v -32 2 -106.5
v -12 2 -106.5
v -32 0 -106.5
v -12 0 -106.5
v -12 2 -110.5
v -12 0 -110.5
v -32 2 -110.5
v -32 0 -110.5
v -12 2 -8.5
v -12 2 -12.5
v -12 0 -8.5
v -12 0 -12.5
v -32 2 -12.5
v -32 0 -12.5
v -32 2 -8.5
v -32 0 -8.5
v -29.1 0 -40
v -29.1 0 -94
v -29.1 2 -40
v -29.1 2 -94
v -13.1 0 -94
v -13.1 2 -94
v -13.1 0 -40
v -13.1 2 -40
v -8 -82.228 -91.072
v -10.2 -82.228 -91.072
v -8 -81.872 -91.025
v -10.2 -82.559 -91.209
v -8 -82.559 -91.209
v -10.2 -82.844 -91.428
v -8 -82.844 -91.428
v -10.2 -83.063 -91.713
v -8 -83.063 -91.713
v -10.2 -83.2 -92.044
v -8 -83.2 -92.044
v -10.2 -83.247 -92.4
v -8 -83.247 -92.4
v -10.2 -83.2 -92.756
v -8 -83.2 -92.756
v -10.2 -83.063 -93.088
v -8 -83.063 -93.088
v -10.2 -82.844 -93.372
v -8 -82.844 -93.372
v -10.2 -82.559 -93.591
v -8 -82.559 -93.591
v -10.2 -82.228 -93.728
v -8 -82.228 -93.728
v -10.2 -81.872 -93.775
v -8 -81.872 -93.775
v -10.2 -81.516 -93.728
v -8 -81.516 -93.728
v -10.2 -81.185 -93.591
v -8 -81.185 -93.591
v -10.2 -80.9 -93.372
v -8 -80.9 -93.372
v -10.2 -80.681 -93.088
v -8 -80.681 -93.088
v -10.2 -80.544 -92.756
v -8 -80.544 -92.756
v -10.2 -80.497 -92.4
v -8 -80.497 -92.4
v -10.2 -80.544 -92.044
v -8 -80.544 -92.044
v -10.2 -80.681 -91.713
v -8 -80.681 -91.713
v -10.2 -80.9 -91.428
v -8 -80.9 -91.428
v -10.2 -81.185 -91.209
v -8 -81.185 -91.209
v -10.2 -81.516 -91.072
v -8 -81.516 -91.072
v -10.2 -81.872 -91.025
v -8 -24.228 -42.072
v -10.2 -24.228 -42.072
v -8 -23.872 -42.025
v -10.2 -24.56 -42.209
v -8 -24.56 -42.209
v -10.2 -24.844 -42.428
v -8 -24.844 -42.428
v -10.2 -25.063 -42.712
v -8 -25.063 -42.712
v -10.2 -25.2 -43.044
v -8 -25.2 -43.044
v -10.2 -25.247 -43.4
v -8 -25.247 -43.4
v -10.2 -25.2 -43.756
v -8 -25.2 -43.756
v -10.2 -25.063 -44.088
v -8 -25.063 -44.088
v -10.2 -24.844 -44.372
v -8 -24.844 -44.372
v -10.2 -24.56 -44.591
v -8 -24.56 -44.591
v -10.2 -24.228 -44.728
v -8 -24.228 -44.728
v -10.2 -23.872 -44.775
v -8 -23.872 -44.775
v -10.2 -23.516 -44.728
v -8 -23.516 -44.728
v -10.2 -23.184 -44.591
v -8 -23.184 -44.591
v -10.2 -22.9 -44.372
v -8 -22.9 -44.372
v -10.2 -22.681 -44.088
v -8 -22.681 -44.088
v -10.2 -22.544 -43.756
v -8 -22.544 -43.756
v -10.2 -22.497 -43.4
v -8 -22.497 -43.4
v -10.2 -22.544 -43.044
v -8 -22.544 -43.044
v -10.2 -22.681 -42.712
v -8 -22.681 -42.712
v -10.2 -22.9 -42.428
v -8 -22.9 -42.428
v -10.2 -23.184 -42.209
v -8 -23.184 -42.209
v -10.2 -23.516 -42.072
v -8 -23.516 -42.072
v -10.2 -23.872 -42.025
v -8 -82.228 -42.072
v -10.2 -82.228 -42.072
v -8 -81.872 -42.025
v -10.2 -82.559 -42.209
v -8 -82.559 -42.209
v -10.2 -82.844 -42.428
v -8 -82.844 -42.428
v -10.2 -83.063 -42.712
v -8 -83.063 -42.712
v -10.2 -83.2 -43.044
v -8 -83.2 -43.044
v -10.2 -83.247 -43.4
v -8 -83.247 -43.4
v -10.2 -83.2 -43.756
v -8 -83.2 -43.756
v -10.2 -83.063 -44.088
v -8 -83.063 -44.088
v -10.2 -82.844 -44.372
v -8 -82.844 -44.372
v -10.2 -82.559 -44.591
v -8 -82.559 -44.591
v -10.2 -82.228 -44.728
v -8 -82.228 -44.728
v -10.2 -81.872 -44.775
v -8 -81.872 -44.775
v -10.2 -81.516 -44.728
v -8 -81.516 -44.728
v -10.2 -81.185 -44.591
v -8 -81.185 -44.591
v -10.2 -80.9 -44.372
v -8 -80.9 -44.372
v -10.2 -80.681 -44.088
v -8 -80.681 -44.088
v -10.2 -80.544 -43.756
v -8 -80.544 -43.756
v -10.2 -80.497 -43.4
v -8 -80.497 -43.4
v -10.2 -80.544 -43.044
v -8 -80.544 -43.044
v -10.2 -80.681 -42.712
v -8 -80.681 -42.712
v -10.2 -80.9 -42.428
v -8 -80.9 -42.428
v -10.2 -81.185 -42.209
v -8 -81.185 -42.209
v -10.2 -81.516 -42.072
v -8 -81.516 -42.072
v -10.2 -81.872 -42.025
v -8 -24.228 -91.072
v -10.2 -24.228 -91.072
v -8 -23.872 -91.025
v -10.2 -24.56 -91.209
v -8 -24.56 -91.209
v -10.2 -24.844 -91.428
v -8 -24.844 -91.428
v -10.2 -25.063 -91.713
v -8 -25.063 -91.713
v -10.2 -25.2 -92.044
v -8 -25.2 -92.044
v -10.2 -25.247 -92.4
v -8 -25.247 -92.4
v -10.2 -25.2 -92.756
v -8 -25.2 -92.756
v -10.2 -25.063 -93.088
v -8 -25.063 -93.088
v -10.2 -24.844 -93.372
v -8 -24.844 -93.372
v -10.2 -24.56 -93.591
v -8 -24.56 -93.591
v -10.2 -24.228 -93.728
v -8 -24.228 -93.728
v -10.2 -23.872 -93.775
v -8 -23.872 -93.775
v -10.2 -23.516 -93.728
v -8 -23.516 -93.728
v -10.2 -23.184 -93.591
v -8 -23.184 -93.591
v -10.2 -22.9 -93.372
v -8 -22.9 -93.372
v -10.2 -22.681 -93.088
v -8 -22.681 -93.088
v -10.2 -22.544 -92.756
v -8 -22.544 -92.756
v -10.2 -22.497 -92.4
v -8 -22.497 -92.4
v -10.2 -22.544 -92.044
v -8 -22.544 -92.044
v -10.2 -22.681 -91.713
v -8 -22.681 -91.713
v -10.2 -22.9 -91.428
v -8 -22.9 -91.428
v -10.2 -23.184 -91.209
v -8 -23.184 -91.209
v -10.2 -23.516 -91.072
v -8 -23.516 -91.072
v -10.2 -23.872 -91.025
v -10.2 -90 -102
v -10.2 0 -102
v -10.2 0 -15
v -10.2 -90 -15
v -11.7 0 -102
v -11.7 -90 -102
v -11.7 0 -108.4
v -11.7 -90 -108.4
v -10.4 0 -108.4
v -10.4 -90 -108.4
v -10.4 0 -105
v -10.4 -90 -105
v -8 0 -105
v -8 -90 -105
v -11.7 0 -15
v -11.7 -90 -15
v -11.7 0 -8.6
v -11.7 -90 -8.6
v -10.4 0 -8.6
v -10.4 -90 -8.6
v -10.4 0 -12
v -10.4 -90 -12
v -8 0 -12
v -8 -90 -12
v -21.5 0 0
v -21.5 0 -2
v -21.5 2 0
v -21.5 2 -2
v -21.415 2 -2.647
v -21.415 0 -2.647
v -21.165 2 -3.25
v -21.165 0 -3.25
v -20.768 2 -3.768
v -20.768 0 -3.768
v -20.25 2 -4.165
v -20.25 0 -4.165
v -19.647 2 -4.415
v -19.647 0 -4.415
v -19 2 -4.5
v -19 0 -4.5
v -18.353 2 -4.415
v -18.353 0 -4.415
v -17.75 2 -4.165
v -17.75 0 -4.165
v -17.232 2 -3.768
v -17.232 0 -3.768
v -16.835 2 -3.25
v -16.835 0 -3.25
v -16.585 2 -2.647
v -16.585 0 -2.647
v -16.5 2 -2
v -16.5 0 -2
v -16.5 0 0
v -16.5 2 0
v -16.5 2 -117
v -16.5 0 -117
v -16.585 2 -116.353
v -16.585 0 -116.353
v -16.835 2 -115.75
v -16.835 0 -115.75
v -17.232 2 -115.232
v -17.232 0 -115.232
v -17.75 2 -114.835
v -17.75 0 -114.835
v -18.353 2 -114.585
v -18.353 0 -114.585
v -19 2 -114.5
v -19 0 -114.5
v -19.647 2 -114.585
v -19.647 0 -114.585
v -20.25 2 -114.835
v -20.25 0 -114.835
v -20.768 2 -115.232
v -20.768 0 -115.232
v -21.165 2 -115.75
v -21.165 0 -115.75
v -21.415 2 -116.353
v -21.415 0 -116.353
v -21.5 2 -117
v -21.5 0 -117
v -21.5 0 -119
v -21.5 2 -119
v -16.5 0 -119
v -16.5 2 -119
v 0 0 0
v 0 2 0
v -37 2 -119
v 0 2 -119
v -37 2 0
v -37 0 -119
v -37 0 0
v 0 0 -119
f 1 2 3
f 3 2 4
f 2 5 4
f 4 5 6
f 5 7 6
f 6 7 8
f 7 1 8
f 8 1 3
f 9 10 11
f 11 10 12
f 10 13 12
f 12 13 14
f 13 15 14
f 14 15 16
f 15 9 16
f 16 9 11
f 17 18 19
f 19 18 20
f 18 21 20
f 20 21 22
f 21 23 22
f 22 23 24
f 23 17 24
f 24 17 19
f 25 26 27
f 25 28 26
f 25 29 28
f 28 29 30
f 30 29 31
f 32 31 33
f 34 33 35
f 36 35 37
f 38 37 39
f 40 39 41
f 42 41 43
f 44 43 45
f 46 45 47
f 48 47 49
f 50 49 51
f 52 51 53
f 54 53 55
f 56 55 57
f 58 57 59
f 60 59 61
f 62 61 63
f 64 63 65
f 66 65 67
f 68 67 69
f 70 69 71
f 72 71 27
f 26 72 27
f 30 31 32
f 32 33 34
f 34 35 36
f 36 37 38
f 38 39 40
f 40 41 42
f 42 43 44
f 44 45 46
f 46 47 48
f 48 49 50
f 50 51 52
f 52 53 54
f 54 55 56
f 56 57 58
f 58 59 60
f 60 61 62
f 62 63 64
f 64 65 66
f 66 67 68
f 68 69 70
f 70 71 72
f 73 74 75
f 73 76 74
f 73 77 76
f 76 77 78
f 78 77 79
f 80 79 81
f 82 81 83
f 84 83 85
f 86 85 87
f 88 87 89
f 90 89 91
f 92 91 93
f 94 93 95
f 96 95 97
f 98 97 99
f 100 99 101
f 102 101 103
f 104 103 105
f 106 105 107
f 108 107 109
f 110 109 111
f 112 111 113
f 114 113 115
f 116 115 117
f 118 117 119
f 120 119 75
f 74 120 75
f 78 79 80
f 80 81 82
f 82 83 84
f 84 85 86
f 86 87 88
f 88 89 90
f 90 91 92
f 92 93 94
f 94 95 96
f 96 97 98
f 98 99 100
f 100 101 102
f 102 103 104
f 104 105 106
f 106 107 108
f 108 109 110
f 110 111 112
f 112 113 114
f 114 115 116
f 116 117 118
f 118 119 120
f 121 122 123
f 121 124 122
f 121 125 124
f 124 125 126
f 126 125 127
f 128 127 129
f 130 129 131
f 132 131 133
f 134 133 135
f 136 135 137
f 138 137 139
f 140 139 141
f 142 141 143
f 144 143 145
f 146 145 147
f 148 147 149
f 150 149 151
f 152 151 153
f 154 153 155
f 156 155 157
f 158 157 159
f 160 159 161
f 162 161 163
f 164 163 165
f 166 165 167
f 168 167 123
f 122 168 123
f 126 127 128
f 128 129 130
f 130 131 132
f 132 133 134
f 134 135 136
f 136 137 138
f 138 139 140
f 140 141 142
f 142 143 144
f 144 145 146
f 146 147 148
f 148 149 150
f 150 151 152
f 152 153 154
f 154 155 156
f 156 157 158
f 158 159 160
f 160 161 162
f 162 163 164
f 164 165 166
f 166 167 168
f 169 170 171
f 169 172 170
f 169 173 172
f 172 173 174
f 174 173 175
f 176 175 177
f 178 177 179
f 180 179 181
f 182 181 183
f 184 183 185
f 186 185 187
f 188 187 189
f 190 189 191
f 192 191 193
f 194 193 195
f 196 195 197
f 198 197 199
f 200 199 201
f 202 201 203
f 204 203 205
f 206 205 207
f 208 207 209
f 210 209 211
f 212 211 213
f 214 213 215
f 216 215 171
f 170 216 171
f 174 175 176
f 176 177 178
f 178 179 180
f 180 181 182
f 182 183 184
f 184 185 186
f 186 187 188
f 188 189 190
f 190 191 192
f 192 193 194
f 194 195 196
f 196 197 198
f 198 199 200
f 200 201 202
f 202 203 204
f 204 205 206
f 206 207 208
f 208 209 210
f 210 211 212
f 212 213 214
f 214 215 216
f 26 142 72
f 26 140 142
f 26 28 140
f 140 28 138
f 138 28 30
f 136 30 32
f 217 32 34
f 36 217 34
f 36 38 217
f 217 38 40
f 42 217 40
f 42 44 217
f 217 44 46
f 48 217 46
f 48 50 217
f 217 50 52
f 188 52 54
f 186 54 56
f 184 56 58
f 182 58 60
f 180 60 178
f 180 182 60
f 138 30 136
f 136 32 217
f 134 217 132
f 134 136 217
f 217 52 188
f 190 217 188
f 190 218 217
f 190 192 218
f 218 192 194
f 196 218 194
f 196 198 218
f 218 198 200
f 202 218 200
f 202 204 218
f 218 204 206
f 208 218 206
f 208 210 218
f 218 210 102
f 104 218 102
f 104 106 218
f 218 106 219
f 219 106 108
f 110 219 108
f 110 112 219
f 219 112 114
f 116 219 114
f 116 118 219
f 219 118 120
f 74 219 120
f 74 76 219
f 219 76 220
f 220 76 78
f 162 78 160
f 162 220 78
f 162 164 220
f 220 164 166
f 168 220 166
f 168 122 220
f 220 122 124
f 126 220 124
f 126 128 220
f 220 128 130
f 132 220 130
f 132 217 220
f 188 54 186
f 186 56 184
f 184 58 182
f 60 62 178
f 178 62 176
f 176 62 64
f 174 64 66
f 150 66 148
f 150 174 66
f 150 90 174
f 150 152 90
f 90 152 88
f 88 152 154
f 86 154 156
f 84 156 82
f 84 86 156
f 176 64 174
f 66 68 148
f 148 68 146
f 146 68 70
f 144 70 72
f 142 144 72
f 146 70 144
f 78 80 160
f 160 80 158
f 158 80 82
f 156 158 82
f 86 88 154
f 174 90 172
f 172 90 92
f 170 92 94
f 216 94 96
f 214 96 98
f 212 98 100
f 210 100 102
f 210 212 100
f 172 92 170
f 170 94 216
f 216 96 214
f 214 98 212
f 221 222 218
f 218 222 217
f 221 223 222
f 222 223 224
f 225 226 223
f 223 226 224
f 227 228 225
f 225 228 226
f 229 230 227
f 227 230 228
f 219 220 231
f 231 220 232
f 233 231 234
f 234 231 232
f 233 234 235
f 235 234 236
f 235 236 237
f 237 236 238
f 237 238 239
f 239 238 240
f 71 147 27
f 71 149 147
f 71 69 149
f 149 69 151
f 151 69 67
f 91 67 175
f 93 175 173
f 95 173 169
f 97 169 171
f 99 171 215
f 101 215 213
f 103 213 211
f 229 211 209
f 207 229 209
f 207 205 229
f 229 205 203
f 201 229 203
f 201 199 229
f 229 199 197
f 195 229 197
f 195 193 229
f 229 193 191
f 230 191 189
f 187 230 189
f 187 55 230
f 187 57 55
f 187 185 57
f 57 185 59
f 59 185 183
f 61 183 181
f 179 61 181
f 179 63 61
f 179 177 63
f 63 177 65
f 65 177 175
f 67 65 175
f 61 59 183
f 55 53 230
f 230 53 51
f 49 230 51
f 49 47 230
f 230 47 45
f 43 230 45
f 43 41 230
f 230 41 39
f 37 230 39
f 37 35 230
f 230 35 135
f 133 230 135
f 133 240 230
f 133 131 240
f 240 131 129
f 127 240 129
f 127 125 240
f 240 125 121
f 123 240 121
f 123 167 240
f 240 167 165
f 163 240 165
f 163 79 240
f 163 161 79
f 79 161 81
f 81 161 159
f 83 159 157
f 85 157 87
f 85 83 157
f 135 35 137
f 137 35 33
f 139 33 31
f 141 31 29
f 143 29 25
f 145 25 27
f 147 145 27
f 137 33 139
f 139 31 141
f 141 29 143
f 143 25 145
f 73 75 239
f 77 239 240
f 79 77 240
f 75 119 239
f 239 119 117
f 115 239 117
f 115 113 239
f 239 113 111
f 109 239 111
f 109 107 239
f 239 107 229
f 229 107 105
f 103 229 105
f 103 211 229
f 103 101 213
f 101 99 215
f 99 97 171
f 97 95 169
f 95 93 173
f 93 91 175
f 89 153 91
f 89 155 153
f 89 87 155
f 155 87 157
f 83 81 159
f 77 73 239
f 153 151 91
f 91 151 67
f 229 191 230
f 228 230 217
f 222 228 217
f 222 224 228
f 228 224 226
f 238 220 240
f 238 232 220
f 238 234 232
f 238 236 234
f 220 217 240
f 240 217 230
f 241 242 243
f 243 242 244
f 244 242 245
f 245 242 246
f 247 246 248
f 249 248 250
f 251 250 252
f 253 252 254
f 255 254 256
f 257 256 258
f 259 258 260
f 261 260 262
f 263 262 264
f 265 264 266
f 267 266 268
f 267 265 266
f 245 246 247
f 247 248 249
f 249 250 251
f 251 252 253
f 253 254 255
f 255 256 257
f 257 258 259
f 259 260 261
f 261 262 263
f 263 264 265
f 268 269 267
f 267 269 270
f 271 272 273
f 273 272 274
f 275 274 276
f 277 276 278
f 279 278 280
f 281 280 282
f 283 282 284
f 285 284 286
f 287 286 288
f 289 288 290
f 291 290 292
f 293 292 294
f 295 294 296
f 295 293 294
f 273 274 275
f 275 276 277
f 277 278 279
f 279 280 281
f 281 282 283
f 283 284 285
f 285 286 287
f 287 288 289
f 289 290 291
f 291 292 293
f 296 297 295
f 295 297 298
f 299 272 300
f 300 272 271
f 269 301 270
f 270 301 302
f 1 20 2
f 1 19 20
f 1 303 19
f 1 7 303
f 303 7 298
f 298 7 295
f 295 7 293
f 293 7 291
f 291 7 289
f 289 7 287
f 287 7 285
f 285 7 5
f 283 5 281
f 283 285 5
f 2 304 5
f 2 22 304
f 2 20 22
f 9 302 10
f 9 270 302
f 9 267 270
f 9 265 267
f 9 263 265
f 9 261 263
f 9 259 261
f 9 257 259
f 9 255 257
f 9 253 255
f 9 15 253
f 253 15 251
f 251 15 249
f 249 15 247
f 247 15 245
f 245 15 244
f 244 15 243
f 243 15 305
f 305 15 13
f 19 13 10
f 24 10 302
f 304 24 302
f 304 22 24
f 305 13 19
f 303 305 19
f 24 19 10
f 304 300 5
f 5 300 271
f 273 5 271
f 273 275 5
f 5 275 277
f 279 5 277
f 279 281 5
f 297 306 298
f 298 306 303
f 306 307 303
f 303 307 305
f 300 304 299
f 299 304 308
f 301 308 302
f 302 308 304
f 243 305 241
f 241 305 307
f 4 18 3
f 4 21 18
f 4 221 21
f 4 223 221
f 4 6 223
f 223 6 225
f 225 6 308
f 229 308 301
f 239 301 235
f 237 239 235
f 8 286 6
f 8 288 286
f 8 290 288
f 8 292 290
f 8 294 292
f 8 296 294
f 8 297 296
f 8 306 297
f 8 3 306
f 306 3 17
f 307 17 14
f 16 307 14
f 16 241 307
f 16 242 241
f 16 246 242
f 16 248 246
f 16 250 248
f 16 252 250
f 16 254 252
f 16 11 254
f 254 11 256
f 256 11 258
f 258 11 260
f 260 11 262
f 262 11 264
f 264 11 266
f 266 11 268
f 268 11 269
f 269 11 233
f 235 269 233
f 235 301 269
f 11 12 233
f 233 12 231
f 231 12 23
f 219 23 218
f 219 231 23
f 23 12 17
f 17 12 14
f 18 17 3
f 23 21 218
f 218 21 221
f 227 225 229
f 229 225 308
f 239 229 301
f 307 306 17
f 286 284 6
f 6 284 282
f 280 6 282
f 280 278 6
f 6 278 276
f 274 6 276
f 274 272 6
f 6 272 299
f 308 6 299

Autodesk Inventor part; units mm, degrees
ref_plane "YZ Plane" through (0, 0, 0) normal (1, 0, 0) x (0, 1, 0)
ref_plane "XZ Plane" through (0, 0, 0) normal (0, 1, 0) x (-1, 0, 0)
ref_plane "XY Plane" through (0, 0, 0) normal (0, 0, 1) x (1, 0, 0)
sketch "Sketch1" plane through (0, 0, 0) normal (0, 1, 0) x (-1, 0, 0)
  line L0 (0, 0) -> (37, 0)
  line L1 (37, 0) -> (37, -119)
  line L2 (37, -119) -> (0, -119)
  line L3 (0, -119) -> (0, 0)
  dimension "d0" = 37
  dimension "d1" = 119
extrude "Extrusion1" add sketch "Sketch1" along normal blind 2
sketch "Sketch3" plane through (0, 0, 0) normal (0, -1, 0) x (1, 0, 0)
  line L0 (0, 0) -> (-16.5, 0)
  line L1 (-37, 0) -> (0, 0) projected
  line L2 (-19, 0) -> (-19, -2)
  arc A0 (-21.5, -2) -> (-16.5, -2) centre (-19, -2) ccw
  line L3 (0, 0) -> (0, -119) projected
  line L4 (0, -119) -> (-19, -119)
  line L5 (0, -119) -> (-37, -119) projected
  line L6 (-19, -119) -> (-19, -117)
  arc A1 (-16.5, -117) -> (-21.5, -117) centre (-19, -117) ccw
  line L7 (-16.5, -117) -> (-16.5, -119)
  line L8 (-21.5, -117) -> (-21.5, -119)
  line L9 (-21.5, -119) -> (-16.5, -119)
  line L10 (-21.5, -2) -> (-21.5, 0)
  line L11 (-16.5, -2) -> (-16.5, 0)
  line L12 (-21.5, 0) -> (-16.5, 0)
  dimension "d14" = 19
  dimension "d15" = 2
  dimension "d16" = 5
  dimension "d17" = 19
  dimension "d18" = 2
  dimension "d19" = 5
extrude "Extrusion3" cut sketch "Sketch3" against normal blind 2
sketch "Sketch4" plane through (0, 2, 0) normal (0, 1, 0) x (1, 0, 0)
  line L0 (0, 119) -> (0, 0) projected
  line L1 (0, 0) -> (0, 12)
  line L2 (0, 12) -> (-6, 12)
  line L3 (-32, 12) -> (-32, 105)
  line L4 (-6, 105) -> (-6, 12)
  line L5 (-11.7, 105) -> (-11.7, 108.4)
  line L6 (-11.7, 108.4) -> (-10.4, 108.4)
  line L7 (-10.4, 108.4) -> (-10.4, 105)
  line L8 (-6, 12) -> (-8, 12)
  line L9 (-8, 12) -> (-8, 105)
  line L10 (-11.7, 105) -> (-11.7, 102)
  line L11 (-11.7, 102) -> (-10.2, 102)
  line L12 (-10.2, 102) -> (-10.2, 15)
  line L13 (-32, 105) -> (-11.7, 105)
  line L14 (-10.2, 15) -> (-11.7, 15)
  line L15 (-11.7, 15) -> (-11.7, 12)
  line L16 (-11.7, 12) -> (-11.7, 8.6)
  line L17 (-11.7, 8.6) -> (-10.4, 8.6)
  line L18 (-10.4, 8.6) -> (-10.4, 12)
  line L19 (-10.4, 12) -> (-8, 12)
  line L20 (-6, 105) -> (-8, 105)
  line L21 (-8, 105) -> (-10.4, 105)
  line L22 (-32, 12) -> (-11.7, 12)
  point P0 (-19, 2)
  dimension "d59" = 12
  dimension "d60" = 6
  dimension "d61" = 26
  dimension "d62" = 93
  dimension "d73" = 2
  dimension "d121" = 2
  dimension "d122" = 93
  dimension "d125" = 20.3
  dimension "d126" = 20.3
  dimension "d127" = 3.4
  dimension "d128" = 3.4
  dimension "d129" = 87
  dimension "d130" = 2.2
  dimension "d154" = 1.3
  dimension "d155" = 1.3
  dimension "d156" = 4.4
  dimension "d157" = 4.4
  dimension "d158" = 1.5
  dimension "d159" = 1.5
extrude "Extrusion7" add sketch "Sketch4" against normal blind 92 contours L15 L14 L12 L11 L10 L5 L6 L7 L21 L9 L19 L18 L17 L16
sketch "Sketch6" plane through (-10.2, -90, -102) normal (-1, 0, 0) x (0, 0, 1)
  line L0 (102, 92) -> (-17, 92) projected
  line L1 (-6.4, 92) -> (58.6, 92)
  line L2 (58.6, 92) -> (58.6, 66.128)
  circle A0 centre (58.6, 66.128) radius 1.375
  line L3 (-6.4, 90) -> (-6.4, 0) projected
  line L4 (58.6, 66.128) -> (58.6, 8.128)
  circle A1 centre (58.6, 8.128) radius 1.375
  line L5 (58.6, 8.128) -> (9.6, 8.128)
  circle A2 centre (9.6, 8.128) radius 1.375
  line L6 (9.6, 8.128) -> (9.6, 66.128)
  circle A3 centre (9.6, 66.128) radius 1.375
  point P0 (102, 90)
  dimension "d80" = 65
  dimension "d81" = 25.872
  dimension "d82" = 2.75
  dimension "d83" = 65
  dimension "d87" = 58
  dimension "d88" = 2.75
  dimension "d89" = 49
  dimension "d90" = 2.75
  dimension "d91" = 2.75
extrude "Extrusion8" cut sketch "Sketch6" against normal blind 2.2
sketch "Sketch7" plane through (0, 0, 0) normal (0, -1, 0) x (1, 0, 0)
  line L0 (-10.2, -102) -> (-10.2, -15) projected
  line L1 (-10.2, -102) -> (-10.2, -40)
  line L2 (-10.2, -40) -> (-13.1, -40)
  line L3 (-13.1, -40) -> (-29.1, -40)
  line L4 (-29.1, -40) -> (-29.1, -94)
  line L5 (-29.1, -94) -> (-13.1, -94)
  line L6 (-13.1, -94) -> (-13.1, -40)
  point P0 (0, 0)
  point P1 (-10, -12)
  point P2 (-10.2, -15)
  dimension "d94" = 62
  dimension "d95" = 2.9
  dimension "d96" = 16
  dimension "d97" = 54
extrude "Extrusion9" cut sketch "Sketch7" against normal blind 2
sketch "Sketch9" plane through (0, 2, 0) normal (0, 1, 0) x (1, 0, 0)
  line L0 (0, 0) -> (0, 119) projected
  arc A0 (-16.5, 2) -> (-21.5, 2) centre (-19, 2) ccw projected
  line L1 (-19, 2) -> (-19, 8.5)
  line L2 (-37, 0) -> (-37, 119) projected
  line L3 (-37, 8.5) -> (-32, 8.5)
  line L4 (-32, 8.5) -> (-12, 8.5)
  line L5 (-12, 8.5) -> (-12, 12.5)
  line L6 (-12, 12.5) -> (-32, 12.5)
  line L7 (-32, 12.5) -> (-32, 8.5)
  line L8 (-37, 0) -> (-21.5, 0) projected
  arc A1 (-21.5, 117) -> (-16.5, 117) centre (-19, 117) ccw projected
  line L9 (-19, 117) -> (-19, 110.5)
  line L10 (-37, 110.5) -> (-32, 110.5)
  line L11 (-32, 110.5) -> (-12, 110.5)
  line L12 (-12, 110.5) -> (-12, 106.5)
  line L13 (-12, 106.5) -> (-32, 106.5)
  line L14 (-32, 106.5) -> (-32, 110.5)
  line L15 (-21.5, 119) -> (-37, 119) projected
  dimension "d142" = 6.5
  dimension "d143" = 5
  dimension "d144" = 20
  dimension "d145" = 4
  dimension "d146" = 12.5
  dimension "d147" = 6.5
  dimension "d148" = 5
  dimension "d149" = 20
  dimension "d150" = 4
  dimension "d151" = 12.5
extrude "Extrusion11" cut sketch "Sketch9" against normal blind 2
properties part number "Slot"
